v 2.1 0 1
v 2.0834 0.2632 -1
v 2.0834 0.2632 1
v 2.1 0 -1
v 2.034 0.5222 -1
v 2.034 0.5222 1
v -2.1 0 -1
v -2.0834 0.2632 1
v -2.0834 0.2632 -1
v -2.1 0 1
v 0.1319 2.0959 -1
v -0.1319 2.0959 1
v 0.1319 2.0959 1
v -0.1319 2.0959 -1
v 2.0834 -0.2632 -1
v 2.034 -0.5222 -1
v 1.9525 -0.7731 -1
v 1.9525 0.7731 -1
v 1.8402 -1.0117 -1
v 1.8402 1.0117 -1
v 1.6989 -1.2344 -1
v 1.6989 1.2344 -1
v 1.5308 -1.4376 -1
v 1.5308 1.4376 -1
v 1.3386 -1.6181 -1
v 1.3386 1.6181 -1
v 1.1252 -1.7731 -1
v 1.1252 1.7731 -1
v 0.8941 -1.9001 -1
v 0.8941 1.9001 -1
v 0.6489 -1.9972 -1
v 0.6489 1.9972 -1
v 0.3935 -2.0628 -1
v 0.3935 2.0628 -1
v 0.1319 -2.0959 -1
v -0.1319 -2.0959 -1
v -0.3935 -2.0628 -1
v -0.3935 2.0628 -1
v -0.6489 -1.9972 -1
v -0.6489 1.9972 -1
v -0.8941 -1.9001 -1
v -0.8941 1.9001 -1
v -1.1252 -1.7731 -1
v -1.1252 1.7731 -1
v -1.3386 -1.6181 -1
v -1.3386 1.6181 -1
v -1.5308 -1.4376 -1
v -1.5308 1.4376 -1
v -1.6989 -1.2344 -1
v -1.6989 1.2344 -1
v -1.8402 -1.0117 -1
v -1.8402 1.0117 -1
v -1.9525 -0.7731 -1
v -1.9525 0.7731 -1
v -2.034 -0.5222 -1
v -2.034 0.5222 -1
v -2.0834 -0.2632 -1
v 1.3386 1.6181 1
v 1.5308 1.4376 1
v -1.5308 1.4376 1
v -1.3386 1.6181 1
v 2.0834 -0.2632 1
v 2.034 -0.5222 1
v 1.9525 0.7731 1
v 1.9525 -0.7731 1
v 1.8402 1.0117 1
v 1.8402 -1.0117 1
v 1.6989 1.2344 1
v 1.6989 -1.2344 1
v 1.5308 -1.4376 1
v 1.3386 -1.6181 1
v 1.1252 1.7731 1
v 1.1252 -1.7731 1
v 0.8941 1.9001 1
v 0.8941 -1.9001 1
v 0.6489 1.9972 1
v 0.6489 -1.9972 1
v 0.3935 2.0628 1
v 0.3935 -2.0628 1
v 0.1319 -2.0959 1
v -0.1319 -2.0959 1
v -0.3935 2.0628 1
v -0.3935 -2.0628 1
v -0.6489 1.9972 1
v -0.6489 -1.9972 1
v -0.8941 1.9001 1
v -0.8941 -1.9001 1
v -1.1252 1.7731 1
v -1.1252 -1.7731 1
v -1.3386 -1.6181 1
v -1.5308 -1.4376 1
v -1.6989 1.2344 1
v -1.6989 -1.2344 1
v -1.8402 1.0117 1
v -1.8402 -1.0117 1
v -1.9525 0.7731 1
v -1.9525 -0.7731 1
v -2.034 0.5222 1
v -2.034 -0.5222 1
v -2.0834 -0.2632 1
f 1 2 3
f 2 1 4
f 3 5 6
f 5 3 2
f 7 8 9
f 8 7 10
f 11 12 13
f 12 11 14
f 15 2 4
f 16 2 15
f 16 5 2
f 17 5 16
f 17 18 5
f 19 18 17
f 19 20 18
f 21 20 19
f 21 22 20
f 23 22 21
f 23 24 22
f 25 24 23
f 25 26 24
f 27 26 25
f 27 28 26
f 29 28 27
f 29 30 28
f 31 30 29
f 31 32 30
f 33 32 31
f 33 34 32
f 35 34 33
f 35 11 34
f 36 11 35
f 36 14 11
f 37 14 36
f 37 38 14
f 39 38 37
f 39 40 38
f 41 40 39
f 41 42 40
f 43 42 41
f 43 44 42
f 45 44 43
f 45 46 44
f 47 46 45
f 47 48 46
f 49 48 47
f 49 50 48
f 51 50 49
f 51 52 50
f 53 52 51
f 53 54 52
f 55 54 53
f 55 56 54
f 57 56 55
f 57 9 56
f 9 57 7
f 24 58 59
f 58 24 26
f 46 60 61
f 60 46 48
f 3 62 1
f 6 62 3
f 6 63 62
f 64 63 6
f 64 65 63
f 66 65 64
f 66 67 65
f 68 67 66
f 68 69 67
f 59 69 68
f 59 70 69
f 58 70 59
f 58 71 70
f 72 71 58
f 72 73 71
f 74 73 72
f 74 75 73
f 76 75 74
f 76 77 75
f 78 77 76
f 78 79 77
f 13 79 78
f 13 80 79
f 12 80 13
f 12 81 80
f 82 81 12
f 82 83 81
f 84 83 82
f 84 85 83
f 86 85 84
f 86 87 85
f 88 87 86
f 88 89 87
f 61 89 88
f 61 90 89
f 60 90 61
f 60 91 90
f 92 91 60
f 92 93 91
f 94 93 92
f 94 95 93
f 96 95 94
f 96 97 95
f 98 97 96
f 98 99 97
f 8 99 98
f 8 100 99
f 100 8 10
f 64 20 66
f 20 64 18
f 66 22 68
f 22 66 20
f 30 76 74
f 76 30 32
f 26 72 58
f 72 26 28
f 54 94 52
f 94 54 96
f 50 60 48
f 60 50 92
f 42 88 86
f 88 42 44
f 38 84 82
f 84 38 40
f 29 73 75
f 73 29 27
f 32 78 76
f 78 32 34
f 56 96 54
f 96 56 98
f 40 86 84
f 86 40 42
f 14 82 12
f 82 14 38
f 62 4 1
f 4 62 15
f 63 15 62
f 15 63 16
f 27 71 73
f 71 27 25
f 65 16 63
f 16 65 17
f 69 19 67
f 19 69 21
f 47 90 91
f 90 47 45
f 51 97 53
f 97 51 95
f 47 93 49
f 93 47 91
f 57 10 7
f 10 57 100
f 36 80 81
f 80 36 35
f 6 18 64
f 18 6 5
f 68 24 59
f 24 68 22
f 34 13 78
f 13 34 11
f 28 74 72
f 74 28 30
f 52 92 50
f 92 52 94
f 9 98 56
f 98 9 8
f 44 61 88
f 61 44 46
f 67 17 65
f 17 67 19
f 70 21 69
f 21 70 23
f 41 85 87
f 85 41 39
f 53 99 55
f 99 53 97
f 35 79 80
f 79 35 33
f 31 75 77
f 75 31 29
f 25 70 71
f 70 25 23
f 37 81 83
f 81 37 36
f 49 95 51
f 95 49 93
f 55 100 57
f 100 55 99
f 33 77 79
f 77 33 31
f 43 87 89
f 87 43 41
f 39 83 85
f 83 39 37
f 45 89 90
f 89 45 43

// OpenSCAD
$fn = 50;


difference() {
	union() {
		translate(v = [0, 0, -1.0000000000]) {
			cylinder(h = 2, r = 2.1000000000);
		}
	}
	union() {
		translate(v = [0, 0, -100.0000000000]) {
			cylinder(h = 200, r = 0);
		}
	}
}
